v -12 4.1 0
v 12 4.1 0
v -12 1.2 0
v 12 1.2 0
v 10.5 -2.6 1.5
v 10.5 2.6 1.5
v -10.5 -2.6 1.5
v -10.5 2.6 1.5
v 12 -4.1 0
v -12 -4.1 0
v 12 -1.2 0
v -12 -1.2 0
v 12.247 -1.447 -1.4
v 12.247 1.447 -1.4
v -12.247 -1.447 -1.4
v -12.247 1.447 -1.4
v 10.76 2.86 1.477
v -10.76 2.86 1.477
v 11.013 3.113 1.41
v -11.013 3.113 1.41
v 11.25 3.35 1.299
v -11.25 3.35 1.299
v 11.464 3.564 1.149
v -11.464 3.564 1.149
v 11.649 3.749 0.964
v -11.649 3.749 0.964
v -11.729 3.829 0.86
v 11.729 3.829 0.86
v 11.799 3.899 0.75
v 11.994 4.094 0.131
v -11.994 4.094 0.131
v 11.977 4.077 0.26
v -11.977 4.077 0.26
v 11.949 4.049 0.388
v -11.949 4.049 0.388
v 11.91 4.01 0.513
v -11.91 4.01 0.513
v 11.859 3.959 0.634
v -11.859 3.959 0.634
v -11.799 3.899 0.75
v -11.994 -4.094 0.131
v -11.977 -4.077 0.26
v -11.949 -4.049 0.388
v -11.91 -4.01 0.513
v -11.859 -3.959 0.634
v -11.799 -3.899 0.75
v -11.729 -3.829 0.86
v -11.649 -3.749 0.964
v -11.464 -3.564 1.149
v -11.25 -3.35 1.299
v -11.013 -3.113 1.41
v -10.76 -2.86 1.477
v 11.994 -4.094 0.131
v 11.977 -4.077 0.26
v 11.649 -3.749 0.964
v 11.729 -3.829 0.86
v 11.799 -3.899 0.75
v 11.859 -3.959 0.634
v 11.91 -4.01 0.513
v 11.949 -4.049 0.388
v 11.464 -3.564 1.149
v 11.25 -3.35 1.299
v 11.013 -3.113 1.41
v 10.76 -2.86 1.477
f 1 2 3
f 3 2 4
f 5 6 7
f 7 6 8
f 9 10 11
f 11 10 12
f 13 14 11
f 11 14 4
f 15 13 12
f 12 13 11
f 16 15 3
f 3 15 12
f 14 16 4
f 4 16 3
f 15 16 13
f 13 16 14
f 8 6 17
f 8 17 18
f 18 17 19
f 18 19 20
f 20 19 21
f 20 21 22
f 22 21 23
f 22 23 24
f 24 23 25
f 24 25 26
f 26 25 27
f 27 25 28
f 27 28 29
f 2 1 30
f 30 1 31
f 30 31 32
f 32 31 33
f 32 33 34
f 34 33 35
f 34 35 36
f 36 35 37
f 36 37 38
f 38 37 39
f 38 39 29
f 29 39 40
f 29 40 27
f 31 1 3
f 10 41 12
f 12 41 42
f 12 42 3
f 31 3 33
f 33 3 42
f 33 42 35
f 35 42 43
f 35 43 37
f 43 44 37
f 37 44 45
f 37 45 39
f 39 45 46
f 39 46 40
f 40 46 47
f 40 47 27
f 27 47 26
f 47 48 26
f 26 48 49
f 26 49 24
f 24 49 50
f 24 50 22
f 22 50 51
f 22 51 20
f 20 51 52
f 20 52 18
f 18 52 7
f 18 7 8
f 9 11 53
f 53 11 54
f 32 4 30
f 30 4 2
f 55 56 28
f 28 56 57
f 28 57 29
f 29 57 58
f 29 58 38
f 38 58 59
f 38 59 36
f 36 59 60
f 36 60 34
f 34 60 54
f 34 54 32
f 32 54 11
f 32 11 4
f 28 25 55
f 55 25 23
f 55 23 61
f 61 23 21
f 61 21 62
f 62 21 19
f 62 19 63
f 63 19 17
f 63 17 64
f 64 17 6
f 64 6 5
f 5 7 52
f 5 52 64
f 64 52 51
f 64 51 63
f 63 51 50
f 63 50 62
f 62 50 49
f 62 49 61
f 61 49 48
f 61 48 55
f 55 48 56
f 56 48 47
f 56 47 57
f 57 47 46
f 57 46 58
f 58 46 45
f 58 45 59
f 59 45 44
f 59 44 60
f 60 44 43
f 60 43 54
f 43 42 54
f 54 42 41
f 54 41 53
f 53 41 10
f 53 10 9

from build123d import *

# Parameters (mm, degrees)
SKETCH1_W           = 24
SKETCH1_H           = 8.2
BOSS_EXTRUDE1_DEPTH = 1.5
SKETCH2_W           = 24
SKETCH2_H           = 2.4
BOSS_EXTRUDE2_DEPTH = 1.4
BOSS_EXTRUDE2_DRAFT = -10
FILLET1_R           = 1.5


with BuildPart() as part:
    # Sketch1 → Boss-Extrude1 (new body)
    with BuildSketch(Plane.XY):
        Rectangle(SKETCH1_W, SKETCH1_H)
    extrude(amount=BOSS_EXTRUDE1_DEPTH)


with BuildPart() as boss_extrude2_tool:
    # Sketch2 → Boss-Extrude2 (with draft: the straight prism first)
    with BuildSketch(Plane(origin=(0, 0, 0), x_dir=(-1, 0, 0), z_dir=(0, 0, -1))):
        Rectangle(SKETCH2_W, SKETCH2_H)
    extrude(amount=BOSS_EXTRUDE2_DEPTH)
    # Boss-Extrude2: the draft: its side faces are tilted about the plane it starts from
    boss_extrude2_sides = [boss_extrude2_tool.faces().sort_by_distance(p)[0] for p in [
        (12, 0, -0.7),
        (0, -1.2, -0.7),
        (-12, 0, -0.7),
        (0, 1.2, -0.7),
    ]]
    draft(boss_extrude2_sides, Plane(origin=(0, 0, 0), x_dir=(-1, 0, 0), z_dir=(0, 0, -1)), BOSS_EXTRUDE2_DRAFT)


with BuildPart() as part_1:
    add(part.part)

    # Boss-Extrude2: add boss_extrude2_tool
    add(boss_extrude2_tool.part)

    # Fillet1
    fillet1_edges = [part_1.edges().sort_by_distance(p)[0] for p in [
        (0, -4.1, 1.5),
        (-12, 0, 1.5),
        (0, 4.1, 1.5),
        (12, 0, 1.5),
    ]]
    fillet(fillet1_edges, radius=FILLET1_R - 0.0001)  # a hair under: the kernel refuses the full size


solid = part_1.part
